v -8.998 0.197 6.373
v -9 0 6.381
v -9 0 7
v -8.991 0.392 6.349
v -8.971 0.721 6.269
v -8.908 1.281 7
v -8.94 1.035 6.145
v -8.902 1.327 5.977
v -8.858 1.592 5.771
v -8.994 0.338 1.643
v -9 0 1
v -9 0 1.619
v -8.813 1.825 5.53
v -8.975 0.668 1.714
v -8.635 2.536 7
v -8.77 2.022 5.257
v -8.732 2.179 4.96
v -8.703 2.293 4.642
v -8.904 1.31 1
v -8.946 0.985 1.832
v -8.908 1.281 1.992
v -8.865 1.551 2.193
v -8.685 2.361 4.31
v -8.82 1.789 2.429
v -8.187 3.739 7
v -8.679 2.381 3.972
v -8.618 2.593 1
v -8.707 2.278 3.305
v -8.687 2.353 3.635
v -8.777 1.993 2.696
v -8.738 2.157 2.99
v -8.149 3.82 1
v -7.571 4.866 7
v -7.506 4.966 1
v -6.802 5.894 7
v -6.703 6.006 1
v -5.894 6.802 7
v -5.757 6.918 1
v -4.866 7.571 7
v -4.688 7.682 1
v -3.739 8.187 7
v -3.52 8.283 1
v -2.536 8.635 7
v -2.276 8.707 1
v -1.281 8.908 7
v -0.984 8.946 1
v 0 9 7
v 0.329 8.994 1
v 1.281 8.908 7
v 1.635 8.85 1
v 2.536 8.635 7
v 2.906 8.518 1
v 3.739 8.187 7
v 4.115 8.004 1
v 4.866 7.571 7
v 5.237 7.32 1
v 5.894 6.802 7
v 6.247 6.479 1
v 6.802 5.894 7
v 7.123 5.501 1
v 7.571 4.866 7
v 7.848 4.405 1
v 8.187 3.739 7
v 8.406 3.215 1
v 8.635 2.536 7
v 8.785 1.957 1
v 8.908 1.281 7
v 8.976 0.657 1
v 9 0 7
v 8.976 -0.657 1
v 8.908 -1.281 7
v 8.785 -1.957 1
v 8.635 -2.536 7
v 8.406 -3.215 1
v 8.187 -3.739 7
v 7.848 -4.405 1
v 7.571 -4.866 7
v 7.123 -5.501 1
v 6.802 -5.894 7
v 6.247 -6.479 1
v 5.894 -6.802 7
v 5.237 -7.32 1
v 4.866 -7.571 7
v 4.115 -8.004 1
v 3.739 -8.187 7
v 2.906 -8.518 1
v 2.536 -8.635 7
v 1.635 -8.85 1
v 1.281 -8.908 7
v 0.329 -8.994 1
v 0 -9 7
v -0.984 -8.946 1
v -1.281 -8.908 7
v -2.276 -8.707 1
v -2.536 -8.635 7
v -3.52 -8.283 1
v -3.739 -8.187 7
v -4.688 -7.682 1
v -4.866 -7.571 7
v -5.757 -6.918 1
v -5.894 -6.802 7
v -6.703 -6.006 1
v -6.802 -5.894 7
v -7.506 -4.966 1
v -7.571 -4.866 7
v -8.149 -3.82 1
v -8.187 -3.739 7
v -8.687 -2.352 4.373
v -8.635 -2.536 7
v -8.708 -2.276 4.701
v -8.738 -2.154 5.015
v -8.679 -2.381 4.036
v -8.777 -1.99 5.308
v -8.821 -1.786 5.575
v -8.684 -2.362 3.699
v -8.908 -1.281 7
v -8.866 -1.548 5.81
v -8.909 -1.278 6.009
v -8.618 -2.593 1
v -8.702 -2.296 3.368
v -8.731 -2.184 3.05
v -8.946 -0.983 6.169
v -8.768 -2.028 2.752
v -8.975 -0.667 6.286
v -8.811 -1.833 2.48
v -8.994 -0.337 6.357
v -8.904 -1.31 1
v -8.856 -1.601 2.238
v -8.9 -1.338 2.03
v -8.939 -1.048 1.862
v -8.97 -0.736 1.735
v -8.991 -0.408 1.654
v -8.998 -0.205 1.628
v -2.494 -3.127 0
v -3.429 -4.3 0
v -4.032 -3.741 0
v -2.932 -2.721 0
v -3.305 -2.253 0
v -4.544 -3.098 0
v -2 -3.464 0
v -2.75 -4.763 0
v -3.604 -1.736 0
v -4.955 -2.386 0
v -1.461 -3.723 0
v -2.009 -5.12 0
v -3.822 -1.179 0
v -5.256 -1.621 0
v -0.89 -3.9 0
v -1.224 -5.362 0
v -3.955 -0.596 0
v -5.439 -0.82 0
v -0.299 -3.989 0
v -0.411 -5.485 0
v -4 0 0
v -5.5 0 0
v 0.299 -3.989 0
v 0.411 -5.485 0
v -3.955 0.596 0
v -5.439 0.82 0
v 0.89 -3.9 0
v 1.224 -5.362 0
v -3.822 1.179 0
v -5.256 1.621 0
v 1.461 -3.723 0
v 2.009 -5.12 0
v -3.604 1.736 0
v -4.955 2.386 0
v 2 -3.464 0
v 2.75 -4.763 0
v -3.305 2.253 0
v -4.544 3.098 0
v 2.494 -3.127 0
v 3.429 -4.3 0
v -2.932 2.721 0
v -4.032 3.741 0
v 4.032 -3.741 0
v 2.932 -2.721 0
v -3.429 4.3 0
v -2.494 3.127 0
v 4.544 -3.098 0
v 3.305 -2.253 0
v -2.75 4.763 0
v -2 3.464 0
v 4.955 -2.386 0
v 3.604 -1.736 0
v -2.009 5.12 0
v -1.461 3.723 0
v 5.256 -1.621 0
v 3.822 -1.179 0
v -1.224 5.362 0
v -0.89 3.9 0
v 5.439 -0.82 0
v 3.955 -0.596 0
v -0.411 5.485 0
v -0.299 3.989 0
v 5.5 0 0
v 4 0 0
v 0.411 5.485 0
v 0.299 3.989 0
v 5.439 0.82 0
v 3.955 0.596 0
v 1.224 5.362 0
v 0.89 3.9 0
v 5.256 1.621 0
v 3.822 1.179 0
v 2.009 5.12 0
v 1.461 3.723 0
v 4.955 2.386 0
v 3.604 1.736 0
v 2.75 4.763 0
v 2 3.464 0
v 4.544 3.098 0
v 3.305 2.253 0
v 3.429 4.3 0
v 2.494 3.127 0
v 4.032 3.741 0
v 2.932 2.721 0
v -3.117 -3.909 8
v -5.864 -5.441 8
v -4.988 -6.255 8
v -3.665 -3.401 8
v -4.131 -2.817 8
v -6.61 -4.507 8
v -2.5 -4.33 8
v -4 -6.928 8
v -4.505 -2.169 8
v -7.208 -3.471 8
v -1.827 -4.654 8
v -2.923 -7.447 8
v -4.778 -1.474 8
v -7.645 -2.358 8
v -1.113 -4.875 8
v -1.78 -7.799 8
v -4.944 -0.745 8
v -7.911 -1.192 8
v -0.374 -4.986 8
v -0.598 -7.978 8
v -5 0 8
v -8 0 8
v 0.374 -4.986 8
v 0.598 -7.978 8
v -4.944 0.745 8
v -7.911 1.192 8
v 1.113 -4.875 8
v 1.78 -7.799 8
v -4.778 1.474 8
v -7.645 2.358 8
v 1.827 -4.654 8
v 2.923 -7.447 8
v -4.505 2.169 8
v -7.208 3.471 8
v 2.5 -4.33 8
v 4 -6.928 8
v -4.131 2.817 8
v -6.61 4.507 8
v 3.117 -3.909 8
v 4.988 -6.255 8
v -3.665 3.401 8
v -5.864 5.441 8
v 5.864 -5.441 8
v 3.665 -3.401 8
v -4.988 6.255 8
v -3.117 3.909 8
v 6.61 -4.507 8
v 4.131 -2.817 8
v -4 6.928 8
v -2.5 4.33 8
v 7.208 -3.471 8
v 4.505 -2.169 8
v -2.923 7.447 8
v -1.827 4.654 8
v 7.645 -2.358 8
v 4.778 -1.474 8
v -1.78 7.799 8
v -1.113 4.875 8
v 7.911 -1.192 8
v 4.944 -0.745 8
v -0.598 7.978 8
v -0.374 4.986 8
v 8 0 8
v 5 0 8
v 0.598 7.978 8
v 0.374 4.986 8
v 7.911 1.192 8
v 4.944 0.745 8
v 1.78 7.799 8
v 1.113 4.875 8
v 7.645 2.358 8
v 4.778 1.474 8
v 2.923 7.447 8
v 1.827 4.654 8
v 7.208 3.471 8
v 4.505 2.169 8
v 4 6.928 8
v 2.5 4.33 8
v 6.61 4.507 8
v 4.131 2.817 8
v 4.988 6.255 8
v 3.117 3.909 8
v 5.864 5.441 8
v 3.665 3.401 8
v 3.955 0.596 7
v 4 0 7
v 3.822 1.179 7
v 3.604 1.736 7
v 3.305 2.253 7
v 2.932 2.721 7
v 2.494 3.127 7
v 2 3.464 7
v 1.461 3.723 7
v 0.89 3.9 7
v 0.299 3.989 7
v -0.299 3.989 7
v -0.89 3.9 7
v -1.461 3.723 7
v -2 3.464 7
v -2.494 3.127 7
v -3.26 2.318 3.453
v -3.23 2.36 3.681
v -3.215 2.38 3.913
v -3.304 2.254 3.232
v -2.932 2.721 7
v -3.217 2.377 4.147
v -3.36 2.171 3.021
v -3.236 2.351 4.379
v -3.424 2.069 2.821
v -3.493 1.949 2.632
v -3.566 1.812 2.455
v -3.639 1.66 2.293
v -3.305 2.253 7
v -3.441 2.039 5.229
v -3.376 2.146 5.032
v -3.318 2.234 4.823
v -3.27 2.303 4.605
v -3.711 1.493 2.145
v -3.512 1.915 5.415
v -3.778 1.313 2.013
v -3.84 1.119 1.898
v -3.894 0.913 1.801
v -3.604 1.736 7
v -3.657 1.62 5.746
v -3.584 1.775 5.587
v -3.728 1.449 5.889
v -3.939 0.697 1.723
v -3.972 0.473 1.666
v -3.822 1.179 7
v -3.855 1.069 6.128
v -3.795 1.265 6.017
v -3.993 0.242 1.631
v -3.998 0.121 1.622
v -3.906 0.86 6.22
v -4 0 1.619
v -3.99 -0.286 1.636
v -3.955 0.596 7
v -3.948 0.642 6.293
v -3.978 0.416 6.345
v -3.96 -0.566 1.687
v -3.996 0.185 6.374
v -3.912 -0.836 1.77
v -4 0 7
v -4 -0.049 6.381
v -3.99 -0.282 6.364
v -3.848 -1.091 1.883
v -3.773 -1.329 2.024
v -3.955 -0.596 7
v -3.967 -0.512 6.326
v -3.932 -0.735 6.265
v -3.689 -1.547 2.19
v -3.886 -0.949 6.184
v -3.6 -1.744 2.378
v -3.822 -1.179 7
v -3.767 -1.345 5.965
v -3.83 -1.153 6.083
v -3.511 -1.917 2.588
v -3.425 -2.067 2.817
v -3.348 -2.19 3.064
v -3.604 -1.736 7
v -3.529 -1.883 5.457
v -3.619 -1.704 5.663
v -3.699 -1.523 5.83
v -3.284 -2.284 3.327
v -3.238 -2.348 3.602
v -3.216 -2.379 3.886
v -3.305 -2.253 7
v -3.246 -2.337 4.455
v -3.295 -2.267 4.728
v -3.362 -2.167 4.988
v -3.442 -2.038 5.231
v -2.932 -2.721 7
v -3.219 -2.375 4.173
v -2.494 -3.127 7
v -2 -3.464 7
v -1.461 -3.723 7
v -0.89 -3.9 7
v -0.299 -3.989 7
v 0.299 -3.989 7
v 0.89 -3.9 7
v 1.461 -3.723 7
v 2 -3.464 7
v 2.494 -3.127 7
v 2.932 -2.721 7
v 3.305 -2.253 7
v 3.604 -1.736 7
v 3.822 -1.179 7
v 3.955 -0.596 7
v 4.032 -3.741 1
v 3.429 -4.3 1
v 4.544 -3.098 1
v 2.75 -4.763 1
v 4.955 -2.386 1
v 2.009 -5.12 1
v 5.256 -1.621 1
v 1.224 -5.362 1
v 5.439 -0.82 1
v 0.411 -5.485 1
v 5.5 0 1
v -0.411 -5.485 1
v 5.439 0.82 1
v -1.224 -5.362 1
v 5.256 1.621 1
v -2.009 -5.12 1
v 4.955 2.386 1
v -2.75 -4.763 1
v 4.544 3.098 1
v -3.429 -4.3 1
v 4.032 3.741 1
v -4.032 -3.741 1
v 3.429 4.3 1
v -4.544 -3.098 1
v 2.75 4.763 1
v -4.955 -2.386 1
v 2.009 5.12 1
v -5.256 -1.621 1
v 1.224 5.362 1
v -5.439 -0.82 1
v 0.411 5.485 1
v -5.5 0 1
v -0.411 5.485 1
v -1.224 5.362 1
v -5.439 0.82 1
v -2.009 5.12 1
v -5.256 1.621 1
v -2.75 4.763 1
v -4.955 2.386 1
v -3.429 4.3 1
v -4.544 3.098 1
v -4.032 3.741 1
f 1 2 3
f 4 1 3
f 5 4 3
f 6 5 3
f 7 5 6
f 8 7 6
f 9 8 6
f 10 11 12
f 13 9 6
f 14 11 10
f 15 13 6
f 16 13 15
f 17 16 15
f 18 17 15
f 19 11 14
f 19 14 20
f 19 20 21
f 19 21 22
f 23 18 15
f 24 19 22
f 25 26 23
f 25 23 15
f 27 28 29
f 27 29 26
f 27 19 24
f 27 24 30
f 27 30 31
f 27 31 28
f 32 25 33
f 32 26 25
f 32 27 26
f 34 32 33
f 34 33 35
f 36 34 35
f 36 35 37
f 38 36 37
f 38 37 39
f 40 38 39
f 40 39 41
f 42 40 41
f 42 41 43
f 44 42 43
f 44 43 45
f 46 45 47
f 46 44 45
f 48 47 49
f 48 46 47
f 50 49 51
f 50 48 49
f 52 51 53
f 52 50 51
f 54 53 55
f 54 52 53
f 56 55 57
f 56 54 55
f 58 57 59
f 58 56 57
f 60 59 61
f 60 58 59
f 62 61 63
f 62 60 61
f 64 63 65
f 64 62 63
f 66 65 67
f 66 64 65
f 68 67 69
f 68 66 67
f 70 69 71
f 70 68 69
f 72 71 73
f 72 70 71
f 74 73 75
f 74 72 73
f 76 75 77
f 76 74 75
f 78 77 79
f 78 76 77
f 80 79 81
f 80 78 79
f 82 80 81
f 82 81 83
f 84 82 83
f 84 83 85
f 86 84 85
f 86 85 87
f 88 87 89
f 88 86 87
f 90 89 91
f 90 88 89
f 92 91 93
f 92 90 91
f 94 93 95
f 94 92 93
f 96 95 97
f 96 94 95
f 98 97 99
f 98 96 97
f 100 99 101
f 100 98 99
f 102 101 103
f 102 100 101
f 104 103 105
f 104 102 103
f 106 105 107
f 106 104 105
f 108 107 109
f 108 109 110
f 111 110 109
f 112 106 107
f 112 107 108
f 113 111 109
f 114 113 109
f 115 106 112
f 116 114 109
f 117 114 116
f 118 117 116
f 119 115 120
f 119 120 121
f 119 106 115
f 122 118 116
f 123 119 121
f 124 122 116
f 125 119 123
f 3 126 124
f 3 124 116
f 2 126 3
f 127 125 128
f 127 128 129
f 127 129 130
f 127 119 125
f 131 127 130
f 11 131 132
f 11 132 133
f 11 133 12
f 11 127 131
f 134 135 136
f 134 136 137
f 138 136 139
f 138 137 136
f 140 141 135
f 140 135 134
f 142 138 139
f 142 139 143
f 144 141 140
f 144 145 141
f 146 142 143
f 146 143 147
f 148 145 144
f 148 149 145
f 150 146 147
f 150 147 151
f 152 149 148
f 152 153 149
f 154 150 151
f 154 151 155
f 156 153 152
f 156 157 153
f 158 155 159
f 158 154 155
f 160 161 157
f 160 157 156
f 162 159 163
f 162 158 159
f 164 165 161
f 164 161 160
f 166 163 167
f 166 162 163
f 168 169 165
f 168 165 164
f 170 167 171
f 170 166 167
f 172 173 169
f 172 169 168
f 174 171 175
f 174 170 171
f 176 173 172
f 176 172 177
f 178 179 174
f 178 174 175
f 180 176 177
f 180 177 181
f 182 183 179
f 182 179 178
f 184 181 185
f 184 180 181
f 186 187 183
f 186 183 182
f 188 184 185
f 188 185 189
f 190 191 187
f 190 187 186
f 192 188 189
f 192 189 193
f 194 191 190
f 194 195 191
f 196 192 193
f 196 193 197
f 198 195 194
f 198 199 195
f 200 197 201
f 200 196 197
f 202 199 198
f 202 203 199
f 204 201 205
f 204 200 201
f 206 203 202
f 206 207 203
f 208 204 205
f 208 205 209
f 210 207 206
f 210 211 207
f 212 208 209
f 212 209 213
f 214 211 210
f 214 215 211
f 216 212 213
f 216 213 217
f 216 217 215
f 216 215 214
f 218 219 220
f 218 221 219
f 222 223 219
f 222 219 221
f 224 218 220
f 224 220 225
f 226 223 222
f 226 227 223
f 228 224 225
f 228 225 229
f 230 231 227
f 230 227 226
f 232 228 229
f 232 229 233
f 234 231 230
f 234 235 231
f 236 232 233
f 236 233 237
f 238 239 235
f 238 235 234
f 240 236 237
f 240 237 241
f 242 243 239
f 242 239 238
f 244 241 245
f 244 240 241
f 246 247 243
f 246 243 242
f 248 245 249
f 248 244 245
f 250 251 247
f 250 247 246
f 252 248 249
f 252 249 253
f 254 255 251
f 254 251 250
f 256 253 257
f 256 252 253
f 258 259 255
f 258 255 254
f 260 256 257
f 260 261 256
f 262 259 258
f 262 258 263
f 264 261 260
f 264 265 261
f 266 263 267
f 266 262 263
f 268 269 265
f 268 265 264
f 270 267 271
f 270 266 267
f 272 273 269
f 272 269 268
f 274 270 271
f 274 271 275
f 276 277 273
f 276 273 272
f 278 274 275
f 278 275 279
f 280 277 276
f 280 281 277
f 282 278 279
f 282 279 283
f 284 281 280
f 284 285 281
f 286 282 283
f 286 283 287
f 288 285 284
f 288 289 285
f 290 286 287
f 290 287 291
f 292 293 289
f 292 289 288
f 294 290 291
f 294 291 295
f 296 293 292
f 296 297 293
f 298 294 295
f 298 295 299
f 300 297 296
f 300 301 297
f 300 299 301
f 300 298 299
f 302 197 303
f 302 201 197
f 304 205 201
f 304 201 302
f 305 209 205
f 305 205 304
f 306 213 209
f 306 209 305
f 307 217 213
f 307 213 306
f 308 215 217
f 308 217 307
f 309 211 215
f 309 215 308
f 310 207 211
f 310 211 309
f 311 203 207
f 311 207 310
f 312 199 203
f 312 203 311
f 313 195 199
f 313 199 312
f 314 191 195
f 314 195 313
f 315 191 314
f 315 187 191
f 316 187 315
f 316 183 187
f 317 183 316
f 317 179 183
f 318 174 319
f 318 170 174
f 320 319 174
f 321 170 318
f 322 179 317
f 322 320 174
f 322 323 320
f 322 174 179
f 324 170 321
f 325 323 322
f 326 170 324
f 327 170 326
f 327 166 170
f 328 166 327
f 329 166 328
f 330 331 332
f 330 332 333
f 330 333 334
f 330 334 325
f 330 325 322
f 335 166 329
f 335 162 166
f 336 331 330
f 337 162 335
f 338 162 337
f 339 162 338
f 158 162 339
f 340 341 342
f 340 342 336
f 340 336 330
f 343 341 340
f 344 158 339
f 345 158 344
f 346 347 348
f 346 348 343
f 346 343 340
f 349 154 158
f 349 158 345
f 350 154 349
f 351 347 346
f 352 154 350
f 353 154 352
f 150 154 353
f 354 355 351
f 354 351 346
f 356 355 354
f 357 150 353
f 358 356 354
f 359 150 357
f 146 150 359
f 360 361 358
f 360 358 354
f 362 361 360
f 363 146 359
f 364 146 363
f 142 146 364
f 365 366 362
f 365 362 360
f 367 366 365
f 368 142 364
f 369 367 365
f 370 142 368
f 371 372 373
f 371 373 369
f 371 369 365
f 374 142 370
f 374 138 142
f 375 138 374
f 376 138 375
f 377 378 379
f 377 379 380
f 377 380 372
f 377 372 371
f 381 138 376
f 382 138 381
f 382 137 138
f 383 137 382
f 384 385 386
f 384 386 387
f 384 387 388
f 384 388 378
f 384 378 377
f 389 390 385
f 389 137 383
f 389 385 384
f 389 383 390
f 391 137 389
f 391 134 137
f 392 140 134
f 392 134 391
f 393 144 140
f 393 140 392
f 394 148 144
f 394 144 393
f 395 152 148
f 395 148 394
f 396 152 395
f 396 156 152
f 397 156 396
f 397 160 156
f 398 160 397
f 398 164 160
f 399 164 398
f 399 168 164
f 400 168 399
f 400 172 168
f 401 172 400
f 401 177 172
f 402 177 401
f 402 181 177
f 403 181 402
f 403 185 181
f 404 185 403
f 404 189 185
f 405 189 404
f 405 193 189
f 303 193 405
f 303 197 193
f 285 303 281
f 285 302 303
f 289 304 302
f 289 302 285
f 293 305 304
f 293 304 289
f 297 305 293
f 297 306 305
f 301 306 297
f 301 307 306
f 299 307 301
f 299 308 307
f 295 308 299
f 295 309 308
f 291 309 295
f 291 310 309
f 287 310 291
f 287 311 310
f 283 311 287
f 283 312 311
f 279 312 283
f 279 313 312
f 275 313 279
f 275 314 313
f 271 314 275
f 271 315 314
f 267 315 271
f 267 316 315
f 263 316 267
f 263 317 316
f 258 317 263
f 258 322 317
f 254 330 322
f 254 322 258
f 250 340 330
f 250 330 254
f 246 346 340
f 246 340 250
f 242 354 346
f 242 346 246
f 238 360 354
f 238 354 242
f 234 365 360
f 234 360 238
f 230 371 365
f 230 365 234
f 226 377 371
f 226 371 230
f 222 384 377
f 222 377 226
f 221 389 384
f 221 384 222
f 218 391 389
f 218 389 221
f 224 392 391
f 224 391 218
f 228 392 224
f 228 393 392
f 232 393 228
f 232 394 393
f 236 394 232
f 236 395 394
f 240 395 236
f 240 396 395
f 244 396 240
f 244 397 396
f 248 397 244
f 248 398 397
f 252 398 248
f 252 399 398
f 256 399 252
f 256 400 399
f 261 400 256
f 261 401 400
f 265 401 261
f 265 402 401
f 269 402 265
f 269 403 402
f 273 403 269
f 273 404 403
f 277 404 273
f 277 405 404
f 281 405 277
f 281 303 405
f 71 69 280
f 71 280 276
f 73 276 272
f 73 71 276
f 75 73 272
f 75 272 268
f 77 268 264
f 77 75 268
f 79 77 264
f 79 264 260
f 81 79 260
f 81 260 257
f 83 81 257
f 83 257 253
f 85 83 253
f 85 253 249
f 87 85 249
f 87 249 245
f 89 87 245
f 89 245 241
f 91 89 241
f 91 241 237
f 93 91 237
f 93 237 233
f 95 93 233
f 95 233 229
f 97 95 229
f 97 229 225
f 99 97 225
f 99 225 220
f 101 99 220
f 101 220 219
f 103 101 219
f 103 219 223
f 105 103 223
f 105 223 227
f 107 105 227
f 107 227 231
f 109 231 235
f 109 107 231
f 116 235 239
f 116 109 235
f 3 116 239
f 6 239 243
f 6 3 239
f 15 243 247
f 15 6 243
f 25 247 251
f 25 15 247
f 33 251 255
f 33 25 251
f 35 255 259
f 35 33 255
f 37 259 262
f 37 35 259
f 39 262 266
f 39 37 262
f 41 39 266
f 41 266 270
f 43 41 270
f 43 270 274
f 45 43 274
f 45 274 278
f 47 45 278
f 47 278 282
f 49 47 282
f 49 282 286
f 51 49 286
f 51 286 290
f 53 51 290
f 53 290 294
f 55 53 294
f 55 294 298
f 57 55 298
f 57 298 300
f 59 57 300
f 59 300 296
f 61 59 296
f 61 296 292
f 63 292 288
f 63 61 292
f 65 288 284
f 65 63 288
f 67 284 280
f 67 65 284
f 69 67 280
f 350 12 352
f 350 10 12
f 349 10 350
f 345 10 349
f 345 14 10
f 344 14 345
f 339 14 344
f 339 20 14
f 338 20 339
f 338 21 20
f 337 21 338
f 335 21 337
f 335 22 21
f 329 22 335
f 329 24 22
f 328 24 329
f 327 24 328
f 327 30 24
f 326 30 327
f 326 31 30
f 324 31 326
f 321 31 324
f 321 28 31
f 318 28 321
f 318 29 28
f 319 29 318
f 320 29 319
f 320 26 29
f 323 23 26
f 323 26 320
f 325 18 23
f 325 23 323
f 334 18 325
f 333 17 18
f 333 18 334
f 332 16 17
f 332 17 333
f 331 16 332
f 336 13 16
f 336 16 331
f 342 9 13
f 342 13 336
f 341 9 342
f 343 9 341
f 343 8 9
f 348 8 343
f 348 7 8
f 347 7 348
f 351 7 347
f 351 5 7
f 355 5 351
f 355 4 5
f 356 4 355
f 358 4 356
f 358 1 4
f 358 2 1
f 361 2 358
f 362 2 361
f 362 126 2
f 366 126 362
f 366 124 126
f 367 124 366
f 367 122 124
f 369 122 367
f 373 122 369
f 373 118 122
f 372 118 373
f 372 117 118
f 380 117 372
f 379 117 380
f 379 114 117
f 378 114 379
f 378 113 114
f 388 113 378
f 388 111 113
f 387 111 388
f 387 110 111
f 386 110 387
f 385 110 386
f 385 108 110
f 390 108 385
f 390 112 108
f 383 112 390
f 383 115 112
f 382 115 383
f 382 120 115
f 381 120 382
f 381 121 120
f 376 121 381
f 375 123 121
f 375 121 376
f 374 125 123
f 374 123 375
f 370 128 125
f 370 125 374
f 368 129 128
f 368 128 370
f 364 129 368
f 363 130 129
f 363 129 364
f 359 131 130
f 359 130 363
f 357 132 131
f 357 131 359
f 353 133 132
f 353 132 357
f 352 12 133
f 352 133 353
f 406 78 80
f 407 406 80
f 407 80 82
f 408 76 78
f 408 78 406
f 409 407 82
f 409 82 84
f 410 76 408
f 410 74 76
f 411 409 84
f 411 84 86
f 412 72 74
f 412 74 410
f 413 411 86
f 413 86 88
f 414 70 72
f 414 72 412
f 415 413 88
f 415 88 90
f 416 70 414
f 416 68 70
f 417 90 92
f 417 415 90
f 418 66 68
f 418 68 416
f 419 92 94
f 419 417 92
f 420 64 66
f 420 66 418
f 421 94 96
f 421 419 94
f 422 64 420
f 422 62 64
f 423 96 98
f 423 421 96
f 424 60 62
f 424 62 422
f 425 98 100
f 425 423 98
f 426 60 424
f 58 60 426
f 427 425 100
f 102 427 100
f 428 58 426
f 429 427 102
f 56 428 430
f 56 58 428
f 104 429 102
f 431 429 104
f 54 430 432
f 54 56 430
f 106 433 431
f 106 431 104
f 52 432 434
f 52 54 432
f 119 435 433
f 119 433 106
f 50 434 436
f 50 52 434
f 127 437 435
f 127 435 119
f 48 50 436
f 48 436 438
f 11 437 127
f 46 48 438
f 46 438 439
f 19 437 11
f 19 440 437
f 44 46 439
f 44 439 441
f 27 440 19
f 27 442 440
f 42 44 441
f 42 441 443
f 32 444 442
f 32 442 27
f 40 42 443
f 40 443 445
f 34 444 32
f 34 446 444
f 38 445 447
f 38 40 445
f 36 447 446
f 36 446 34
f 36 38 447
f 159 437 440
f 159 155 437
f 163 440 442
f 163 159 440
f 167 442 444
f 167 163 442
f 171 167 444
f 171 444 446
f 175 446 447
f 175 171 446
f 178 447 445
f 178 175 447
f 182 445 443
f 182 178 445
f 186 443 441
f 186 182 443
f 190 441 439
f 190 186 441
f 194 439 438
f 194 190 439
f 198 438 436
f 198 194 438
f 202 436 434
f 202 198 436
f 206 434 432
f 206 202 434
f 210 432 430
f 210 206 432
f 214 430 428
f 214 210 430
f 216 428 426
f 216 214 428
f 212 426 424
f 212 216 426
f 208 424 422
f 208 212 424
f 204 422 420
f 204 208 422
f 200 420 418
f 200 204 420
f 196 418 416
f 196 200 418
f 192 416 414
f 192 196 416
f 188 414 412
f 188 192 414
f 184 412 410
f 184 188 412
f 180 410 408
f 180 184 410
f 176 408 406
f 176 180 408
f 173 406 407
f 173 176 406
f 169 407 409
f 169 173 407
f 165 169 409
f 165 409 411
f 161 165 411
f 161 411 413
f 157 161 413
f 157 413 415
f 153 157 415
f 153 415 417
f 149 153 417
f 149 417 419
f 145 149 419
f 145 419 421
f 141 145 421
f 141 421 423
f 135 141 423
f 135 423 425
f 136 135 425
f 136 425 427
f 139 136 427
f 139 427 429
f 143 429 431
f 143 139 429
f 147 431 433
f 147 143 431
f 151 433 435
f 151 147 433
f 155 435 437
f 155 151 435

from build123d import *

# Parameters (mm, degrees)
CROQUIS1_R              = 9
SALIENTE_EXTRUIR1_DEPTH = 8
CROQUIS2_R              = 4
CORTAR_EXTRUIR1_DEPTH   = 16.033296378
CHAFL_N1_SIZE           = 1
CROQUIS3_R              = 2.38125
CORTAR_EXTRUIR2_DEPTH   = 10
CROQUIS4_R              = 11.390520889
CROQUIS4_R_2            = 5.5
CORTAR_EXTRUIR3_DEPTH   = 1


with BuildPart() as part:
    # Croquis1 → Saliente-Extruir1 (new body)
    with BuildSketch(Plane.XY):
        Circle(CROQUIS1_R)
    extrude(amount=SALIENTE_EXTRUIR1_DEPTH)

    # Croquis2 → Cortar-Extruir1 (cut, through all)
    with BuildSketch(Plane.XY.offset(8)):
        Circle(CROQUIS2_R)
    extrude(amount=-CORTAR_EXTRUIR1_DEPTH, mode=Mode.SUBTRACT)

    # Chaflán1
    chafl_n1_edges = [part.edges().sort_by_distance(p)[0] for p in [
        (-9, 0, 8),
        (-4, 0, 8),
    ]]
    chamfer(chafl_n1_edges, length=CHAFL_N1_SIZE)

    # Croquis3 → Cortar-Extruir2 (cut)
    with BuildSketch(Plane(origin=(0, 0, 0), x_dir=(0, 0, -1), z_dir=(1, 0, 0))):
        with Locations((-4, 0)):
            Circle(CROQUIS3_R)
    extrude(amount=-CORTAR_EXTRUIR2_DEPTH, mode=Mode.SUBTRACT)

    # Croquis4 → Cortar-Extruir3 (cut)
    with BuildSketch(Plane(origin=(0, 0, 0), x_dir=(-1, 0, 0), z_dir=(0, 0, -1))):
        Circle(CROQUIS4_R)
        Circle(CROQUIS4_R_2, mode=Mode.SUBTRACT)
    extrude(amount=-CORTAR_EXTRUIR3_DEPTH, mode=Mode.SUBTRACT)


solid = part.part
